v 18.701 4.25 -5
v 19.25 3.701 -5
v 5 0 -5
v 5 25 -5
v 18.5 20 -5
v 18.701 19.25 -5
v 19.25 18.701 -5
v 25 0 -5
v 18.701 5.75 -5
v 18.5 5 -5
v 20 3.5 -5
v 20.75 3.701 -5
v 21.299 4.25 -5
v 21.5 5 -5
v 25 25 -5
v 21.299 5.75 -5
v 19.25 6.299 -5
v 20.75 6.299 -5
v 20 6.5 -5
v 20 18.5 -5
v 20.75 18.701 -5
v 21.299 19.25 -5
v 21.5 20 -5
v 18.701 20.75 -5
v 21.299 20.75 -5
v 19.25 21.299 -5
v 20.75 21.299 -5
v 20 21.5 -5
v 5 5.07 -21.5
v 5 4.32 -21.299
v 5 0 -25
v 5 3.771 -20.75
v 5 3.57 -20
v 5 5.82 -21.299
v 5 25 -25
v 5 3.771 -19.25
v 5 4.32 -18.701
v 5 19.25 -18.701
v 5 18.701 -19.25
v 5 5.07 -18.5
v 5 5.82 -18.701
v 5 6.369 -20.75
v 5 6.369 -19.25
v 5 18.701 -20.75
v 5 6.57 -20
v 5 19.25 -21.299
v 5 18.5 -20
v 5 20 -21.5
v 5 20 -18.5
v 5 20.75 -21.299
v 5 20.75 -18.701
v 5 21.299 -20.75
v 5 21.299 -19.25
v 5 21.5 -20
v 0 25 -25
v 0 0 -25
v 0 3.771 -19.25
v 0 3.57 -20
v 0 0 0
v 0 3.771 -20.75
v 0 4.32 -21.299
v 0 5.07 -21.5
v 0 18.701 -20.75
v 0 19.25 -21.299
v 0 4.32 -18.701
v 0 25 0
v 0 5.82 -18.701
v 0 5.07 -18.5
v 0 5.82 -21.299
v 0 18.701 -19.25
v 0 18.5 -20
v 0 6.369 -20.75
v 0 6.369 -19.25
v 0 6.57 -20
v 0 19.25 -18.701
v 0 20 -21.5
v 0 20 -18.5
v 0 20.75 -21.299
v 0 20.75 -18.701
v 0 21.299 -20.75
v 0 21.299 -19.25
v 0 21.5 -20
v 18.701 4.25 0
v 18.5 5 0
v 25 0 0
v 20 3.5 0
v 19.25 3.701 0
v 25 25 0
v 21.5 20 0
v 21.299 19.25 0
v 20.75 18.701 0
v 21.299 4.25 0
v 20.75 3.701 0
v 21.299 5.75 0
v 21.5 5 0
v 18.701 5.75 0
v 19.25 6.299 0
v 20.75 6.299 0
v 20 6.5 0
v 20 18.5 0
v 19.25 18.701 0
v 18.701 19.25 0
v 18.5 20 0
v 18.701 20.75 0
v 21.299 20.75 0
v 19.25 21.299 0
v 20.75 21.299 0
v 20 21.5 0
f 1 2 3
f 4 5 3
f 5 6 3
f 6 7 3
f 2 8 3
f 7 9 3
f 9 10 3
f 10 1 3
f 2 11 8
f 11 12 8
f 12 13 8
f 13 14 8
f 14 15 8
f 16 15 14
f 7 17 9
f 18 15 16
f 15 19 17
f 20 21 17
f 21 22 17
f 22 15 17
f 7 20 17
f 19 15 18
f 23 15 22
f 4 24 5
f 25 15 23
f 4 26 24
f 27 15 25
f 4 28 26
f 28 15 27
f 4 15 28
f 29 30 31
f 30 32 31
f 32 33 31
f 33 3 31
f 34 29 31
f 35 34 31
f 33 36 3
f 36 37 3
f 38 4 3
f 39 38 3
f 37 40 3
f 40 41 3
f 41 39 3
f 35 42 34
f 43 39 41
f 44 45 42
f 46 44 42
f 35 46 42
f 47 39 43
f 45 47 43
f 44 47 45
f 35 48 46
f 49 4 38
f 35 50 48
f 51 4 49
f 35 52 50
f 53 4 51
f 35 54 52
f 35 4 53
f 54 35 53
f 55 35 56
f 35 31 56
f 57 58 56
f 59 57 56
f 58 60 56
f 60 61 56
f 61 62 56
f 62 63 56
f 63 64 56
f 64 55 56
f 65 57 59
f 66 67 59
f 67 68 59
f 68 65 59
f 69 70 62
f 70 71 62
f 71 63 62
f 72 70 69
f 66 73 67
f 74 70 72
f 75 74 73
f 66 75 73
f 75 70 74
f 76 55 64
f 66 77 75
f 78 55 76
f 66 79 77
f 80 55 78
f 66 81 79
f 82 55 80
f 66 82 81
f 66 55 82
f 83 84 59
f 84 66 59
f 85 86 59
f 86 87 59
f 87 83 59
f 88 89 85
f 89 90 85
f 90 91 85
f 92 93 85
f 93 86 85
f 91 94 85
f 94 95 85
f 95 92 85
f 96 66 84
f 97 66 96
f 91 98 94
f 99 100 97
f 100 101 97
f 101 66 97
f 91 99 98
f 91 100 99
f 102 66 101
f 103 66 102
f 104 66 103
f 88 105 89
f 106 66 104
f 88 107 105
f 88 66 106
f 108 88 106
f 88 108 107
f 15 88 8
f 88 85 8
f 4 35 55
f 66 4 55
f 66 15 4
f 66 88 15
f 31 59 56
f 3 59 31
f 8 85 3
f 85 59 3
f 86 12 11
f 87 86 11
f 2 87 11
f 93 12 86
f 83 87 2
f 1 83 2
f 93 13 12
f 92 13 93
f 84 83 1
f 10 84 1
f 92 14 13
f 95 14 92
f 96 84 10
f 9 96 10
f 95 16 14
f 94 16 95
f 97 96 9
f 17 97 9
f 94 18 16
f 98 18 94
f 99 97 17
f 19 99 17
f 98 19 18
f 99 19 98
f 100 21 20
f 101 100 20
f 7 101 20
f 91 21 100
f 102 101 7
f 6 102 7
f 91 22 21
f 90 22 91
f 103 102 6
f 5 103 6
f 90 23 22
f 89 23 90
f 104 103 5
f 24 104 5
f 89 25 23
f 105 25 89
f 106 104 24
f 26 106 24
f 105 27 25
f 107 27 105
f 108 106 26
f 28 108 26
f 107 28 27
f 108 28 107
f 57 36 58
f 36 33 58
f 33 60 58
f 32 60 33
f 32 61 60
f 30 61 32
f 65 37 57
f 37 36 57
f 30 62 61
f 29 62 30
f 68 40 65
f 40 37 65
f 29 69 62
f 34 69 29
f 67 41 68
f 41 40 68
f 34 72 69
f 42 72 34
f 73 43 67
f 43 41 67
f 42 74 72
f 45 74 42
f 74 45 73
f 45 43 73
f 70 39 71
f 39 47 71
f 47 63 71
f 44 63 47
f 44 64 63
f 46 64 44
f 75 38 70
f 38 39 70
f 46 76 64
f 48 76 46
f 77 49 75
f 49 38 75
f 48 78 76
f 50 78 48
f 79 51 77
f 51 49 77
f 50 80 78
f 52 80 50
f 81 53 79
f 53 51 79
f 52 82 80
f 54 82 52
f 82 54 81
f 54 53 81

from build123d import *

# Parameters (mm, degrees)
EXTRUDE_1_DEPTH     = 25
SKETCH_2_R          = 1.5
CUT_EXTRUDE_1_DEPTH = 10
SKETCH_3_R          = 1.5
CUT_EXTRUDE_2_DEPTH = 10


with BuildPart() as part:
    # 草图1 → 凸台-拉伸1 (new body)
    with BuildSketch(Plane(origin=(0, 0, 0), x_dir=(1, 0, 0), z_dir=(0, 1, 0))):
        Polygon((0, 0), (25, 0), (25, 5), (5, 5), (5, 25), (0, 25), align=None)
    extrude(amount=EXTRUDE_1_DEPTH)

    # 草图2 → 切除-拉伸1 (cut)
    with BuildSketch(Plane(origin=(0, 0, -5), x_dir=(-1, 0, 0), z_dir=(0, 0, -1))):
        with Locations((-20, 20)):
            Circle(SKETCH_2_R)
        with Locations((-20, 5)):
            Circle(SKETCH_2_R)
    extrude(amount=-CUT_EXTRUDE_1_DEPTH, mode=Mode.SUBTRACT)

    # 草图3 → 切除-拉伸2 (cut)
    with BuildSketch(Plane(origin=(5, 0, 0), x_dir=(0, 0, -1), z_dir=(1, 0, 0))):
        with Locations((20, 20)):
            Circle(SKETCH_3_R)
        with Locations((20, 5.070253282)):
            Circle(SKETCH_3_R)
    extrude(amount=-CUT_EXTRUDE_2_DEPTH, mode=Mode.SUBTRACT)


solid = part.part
